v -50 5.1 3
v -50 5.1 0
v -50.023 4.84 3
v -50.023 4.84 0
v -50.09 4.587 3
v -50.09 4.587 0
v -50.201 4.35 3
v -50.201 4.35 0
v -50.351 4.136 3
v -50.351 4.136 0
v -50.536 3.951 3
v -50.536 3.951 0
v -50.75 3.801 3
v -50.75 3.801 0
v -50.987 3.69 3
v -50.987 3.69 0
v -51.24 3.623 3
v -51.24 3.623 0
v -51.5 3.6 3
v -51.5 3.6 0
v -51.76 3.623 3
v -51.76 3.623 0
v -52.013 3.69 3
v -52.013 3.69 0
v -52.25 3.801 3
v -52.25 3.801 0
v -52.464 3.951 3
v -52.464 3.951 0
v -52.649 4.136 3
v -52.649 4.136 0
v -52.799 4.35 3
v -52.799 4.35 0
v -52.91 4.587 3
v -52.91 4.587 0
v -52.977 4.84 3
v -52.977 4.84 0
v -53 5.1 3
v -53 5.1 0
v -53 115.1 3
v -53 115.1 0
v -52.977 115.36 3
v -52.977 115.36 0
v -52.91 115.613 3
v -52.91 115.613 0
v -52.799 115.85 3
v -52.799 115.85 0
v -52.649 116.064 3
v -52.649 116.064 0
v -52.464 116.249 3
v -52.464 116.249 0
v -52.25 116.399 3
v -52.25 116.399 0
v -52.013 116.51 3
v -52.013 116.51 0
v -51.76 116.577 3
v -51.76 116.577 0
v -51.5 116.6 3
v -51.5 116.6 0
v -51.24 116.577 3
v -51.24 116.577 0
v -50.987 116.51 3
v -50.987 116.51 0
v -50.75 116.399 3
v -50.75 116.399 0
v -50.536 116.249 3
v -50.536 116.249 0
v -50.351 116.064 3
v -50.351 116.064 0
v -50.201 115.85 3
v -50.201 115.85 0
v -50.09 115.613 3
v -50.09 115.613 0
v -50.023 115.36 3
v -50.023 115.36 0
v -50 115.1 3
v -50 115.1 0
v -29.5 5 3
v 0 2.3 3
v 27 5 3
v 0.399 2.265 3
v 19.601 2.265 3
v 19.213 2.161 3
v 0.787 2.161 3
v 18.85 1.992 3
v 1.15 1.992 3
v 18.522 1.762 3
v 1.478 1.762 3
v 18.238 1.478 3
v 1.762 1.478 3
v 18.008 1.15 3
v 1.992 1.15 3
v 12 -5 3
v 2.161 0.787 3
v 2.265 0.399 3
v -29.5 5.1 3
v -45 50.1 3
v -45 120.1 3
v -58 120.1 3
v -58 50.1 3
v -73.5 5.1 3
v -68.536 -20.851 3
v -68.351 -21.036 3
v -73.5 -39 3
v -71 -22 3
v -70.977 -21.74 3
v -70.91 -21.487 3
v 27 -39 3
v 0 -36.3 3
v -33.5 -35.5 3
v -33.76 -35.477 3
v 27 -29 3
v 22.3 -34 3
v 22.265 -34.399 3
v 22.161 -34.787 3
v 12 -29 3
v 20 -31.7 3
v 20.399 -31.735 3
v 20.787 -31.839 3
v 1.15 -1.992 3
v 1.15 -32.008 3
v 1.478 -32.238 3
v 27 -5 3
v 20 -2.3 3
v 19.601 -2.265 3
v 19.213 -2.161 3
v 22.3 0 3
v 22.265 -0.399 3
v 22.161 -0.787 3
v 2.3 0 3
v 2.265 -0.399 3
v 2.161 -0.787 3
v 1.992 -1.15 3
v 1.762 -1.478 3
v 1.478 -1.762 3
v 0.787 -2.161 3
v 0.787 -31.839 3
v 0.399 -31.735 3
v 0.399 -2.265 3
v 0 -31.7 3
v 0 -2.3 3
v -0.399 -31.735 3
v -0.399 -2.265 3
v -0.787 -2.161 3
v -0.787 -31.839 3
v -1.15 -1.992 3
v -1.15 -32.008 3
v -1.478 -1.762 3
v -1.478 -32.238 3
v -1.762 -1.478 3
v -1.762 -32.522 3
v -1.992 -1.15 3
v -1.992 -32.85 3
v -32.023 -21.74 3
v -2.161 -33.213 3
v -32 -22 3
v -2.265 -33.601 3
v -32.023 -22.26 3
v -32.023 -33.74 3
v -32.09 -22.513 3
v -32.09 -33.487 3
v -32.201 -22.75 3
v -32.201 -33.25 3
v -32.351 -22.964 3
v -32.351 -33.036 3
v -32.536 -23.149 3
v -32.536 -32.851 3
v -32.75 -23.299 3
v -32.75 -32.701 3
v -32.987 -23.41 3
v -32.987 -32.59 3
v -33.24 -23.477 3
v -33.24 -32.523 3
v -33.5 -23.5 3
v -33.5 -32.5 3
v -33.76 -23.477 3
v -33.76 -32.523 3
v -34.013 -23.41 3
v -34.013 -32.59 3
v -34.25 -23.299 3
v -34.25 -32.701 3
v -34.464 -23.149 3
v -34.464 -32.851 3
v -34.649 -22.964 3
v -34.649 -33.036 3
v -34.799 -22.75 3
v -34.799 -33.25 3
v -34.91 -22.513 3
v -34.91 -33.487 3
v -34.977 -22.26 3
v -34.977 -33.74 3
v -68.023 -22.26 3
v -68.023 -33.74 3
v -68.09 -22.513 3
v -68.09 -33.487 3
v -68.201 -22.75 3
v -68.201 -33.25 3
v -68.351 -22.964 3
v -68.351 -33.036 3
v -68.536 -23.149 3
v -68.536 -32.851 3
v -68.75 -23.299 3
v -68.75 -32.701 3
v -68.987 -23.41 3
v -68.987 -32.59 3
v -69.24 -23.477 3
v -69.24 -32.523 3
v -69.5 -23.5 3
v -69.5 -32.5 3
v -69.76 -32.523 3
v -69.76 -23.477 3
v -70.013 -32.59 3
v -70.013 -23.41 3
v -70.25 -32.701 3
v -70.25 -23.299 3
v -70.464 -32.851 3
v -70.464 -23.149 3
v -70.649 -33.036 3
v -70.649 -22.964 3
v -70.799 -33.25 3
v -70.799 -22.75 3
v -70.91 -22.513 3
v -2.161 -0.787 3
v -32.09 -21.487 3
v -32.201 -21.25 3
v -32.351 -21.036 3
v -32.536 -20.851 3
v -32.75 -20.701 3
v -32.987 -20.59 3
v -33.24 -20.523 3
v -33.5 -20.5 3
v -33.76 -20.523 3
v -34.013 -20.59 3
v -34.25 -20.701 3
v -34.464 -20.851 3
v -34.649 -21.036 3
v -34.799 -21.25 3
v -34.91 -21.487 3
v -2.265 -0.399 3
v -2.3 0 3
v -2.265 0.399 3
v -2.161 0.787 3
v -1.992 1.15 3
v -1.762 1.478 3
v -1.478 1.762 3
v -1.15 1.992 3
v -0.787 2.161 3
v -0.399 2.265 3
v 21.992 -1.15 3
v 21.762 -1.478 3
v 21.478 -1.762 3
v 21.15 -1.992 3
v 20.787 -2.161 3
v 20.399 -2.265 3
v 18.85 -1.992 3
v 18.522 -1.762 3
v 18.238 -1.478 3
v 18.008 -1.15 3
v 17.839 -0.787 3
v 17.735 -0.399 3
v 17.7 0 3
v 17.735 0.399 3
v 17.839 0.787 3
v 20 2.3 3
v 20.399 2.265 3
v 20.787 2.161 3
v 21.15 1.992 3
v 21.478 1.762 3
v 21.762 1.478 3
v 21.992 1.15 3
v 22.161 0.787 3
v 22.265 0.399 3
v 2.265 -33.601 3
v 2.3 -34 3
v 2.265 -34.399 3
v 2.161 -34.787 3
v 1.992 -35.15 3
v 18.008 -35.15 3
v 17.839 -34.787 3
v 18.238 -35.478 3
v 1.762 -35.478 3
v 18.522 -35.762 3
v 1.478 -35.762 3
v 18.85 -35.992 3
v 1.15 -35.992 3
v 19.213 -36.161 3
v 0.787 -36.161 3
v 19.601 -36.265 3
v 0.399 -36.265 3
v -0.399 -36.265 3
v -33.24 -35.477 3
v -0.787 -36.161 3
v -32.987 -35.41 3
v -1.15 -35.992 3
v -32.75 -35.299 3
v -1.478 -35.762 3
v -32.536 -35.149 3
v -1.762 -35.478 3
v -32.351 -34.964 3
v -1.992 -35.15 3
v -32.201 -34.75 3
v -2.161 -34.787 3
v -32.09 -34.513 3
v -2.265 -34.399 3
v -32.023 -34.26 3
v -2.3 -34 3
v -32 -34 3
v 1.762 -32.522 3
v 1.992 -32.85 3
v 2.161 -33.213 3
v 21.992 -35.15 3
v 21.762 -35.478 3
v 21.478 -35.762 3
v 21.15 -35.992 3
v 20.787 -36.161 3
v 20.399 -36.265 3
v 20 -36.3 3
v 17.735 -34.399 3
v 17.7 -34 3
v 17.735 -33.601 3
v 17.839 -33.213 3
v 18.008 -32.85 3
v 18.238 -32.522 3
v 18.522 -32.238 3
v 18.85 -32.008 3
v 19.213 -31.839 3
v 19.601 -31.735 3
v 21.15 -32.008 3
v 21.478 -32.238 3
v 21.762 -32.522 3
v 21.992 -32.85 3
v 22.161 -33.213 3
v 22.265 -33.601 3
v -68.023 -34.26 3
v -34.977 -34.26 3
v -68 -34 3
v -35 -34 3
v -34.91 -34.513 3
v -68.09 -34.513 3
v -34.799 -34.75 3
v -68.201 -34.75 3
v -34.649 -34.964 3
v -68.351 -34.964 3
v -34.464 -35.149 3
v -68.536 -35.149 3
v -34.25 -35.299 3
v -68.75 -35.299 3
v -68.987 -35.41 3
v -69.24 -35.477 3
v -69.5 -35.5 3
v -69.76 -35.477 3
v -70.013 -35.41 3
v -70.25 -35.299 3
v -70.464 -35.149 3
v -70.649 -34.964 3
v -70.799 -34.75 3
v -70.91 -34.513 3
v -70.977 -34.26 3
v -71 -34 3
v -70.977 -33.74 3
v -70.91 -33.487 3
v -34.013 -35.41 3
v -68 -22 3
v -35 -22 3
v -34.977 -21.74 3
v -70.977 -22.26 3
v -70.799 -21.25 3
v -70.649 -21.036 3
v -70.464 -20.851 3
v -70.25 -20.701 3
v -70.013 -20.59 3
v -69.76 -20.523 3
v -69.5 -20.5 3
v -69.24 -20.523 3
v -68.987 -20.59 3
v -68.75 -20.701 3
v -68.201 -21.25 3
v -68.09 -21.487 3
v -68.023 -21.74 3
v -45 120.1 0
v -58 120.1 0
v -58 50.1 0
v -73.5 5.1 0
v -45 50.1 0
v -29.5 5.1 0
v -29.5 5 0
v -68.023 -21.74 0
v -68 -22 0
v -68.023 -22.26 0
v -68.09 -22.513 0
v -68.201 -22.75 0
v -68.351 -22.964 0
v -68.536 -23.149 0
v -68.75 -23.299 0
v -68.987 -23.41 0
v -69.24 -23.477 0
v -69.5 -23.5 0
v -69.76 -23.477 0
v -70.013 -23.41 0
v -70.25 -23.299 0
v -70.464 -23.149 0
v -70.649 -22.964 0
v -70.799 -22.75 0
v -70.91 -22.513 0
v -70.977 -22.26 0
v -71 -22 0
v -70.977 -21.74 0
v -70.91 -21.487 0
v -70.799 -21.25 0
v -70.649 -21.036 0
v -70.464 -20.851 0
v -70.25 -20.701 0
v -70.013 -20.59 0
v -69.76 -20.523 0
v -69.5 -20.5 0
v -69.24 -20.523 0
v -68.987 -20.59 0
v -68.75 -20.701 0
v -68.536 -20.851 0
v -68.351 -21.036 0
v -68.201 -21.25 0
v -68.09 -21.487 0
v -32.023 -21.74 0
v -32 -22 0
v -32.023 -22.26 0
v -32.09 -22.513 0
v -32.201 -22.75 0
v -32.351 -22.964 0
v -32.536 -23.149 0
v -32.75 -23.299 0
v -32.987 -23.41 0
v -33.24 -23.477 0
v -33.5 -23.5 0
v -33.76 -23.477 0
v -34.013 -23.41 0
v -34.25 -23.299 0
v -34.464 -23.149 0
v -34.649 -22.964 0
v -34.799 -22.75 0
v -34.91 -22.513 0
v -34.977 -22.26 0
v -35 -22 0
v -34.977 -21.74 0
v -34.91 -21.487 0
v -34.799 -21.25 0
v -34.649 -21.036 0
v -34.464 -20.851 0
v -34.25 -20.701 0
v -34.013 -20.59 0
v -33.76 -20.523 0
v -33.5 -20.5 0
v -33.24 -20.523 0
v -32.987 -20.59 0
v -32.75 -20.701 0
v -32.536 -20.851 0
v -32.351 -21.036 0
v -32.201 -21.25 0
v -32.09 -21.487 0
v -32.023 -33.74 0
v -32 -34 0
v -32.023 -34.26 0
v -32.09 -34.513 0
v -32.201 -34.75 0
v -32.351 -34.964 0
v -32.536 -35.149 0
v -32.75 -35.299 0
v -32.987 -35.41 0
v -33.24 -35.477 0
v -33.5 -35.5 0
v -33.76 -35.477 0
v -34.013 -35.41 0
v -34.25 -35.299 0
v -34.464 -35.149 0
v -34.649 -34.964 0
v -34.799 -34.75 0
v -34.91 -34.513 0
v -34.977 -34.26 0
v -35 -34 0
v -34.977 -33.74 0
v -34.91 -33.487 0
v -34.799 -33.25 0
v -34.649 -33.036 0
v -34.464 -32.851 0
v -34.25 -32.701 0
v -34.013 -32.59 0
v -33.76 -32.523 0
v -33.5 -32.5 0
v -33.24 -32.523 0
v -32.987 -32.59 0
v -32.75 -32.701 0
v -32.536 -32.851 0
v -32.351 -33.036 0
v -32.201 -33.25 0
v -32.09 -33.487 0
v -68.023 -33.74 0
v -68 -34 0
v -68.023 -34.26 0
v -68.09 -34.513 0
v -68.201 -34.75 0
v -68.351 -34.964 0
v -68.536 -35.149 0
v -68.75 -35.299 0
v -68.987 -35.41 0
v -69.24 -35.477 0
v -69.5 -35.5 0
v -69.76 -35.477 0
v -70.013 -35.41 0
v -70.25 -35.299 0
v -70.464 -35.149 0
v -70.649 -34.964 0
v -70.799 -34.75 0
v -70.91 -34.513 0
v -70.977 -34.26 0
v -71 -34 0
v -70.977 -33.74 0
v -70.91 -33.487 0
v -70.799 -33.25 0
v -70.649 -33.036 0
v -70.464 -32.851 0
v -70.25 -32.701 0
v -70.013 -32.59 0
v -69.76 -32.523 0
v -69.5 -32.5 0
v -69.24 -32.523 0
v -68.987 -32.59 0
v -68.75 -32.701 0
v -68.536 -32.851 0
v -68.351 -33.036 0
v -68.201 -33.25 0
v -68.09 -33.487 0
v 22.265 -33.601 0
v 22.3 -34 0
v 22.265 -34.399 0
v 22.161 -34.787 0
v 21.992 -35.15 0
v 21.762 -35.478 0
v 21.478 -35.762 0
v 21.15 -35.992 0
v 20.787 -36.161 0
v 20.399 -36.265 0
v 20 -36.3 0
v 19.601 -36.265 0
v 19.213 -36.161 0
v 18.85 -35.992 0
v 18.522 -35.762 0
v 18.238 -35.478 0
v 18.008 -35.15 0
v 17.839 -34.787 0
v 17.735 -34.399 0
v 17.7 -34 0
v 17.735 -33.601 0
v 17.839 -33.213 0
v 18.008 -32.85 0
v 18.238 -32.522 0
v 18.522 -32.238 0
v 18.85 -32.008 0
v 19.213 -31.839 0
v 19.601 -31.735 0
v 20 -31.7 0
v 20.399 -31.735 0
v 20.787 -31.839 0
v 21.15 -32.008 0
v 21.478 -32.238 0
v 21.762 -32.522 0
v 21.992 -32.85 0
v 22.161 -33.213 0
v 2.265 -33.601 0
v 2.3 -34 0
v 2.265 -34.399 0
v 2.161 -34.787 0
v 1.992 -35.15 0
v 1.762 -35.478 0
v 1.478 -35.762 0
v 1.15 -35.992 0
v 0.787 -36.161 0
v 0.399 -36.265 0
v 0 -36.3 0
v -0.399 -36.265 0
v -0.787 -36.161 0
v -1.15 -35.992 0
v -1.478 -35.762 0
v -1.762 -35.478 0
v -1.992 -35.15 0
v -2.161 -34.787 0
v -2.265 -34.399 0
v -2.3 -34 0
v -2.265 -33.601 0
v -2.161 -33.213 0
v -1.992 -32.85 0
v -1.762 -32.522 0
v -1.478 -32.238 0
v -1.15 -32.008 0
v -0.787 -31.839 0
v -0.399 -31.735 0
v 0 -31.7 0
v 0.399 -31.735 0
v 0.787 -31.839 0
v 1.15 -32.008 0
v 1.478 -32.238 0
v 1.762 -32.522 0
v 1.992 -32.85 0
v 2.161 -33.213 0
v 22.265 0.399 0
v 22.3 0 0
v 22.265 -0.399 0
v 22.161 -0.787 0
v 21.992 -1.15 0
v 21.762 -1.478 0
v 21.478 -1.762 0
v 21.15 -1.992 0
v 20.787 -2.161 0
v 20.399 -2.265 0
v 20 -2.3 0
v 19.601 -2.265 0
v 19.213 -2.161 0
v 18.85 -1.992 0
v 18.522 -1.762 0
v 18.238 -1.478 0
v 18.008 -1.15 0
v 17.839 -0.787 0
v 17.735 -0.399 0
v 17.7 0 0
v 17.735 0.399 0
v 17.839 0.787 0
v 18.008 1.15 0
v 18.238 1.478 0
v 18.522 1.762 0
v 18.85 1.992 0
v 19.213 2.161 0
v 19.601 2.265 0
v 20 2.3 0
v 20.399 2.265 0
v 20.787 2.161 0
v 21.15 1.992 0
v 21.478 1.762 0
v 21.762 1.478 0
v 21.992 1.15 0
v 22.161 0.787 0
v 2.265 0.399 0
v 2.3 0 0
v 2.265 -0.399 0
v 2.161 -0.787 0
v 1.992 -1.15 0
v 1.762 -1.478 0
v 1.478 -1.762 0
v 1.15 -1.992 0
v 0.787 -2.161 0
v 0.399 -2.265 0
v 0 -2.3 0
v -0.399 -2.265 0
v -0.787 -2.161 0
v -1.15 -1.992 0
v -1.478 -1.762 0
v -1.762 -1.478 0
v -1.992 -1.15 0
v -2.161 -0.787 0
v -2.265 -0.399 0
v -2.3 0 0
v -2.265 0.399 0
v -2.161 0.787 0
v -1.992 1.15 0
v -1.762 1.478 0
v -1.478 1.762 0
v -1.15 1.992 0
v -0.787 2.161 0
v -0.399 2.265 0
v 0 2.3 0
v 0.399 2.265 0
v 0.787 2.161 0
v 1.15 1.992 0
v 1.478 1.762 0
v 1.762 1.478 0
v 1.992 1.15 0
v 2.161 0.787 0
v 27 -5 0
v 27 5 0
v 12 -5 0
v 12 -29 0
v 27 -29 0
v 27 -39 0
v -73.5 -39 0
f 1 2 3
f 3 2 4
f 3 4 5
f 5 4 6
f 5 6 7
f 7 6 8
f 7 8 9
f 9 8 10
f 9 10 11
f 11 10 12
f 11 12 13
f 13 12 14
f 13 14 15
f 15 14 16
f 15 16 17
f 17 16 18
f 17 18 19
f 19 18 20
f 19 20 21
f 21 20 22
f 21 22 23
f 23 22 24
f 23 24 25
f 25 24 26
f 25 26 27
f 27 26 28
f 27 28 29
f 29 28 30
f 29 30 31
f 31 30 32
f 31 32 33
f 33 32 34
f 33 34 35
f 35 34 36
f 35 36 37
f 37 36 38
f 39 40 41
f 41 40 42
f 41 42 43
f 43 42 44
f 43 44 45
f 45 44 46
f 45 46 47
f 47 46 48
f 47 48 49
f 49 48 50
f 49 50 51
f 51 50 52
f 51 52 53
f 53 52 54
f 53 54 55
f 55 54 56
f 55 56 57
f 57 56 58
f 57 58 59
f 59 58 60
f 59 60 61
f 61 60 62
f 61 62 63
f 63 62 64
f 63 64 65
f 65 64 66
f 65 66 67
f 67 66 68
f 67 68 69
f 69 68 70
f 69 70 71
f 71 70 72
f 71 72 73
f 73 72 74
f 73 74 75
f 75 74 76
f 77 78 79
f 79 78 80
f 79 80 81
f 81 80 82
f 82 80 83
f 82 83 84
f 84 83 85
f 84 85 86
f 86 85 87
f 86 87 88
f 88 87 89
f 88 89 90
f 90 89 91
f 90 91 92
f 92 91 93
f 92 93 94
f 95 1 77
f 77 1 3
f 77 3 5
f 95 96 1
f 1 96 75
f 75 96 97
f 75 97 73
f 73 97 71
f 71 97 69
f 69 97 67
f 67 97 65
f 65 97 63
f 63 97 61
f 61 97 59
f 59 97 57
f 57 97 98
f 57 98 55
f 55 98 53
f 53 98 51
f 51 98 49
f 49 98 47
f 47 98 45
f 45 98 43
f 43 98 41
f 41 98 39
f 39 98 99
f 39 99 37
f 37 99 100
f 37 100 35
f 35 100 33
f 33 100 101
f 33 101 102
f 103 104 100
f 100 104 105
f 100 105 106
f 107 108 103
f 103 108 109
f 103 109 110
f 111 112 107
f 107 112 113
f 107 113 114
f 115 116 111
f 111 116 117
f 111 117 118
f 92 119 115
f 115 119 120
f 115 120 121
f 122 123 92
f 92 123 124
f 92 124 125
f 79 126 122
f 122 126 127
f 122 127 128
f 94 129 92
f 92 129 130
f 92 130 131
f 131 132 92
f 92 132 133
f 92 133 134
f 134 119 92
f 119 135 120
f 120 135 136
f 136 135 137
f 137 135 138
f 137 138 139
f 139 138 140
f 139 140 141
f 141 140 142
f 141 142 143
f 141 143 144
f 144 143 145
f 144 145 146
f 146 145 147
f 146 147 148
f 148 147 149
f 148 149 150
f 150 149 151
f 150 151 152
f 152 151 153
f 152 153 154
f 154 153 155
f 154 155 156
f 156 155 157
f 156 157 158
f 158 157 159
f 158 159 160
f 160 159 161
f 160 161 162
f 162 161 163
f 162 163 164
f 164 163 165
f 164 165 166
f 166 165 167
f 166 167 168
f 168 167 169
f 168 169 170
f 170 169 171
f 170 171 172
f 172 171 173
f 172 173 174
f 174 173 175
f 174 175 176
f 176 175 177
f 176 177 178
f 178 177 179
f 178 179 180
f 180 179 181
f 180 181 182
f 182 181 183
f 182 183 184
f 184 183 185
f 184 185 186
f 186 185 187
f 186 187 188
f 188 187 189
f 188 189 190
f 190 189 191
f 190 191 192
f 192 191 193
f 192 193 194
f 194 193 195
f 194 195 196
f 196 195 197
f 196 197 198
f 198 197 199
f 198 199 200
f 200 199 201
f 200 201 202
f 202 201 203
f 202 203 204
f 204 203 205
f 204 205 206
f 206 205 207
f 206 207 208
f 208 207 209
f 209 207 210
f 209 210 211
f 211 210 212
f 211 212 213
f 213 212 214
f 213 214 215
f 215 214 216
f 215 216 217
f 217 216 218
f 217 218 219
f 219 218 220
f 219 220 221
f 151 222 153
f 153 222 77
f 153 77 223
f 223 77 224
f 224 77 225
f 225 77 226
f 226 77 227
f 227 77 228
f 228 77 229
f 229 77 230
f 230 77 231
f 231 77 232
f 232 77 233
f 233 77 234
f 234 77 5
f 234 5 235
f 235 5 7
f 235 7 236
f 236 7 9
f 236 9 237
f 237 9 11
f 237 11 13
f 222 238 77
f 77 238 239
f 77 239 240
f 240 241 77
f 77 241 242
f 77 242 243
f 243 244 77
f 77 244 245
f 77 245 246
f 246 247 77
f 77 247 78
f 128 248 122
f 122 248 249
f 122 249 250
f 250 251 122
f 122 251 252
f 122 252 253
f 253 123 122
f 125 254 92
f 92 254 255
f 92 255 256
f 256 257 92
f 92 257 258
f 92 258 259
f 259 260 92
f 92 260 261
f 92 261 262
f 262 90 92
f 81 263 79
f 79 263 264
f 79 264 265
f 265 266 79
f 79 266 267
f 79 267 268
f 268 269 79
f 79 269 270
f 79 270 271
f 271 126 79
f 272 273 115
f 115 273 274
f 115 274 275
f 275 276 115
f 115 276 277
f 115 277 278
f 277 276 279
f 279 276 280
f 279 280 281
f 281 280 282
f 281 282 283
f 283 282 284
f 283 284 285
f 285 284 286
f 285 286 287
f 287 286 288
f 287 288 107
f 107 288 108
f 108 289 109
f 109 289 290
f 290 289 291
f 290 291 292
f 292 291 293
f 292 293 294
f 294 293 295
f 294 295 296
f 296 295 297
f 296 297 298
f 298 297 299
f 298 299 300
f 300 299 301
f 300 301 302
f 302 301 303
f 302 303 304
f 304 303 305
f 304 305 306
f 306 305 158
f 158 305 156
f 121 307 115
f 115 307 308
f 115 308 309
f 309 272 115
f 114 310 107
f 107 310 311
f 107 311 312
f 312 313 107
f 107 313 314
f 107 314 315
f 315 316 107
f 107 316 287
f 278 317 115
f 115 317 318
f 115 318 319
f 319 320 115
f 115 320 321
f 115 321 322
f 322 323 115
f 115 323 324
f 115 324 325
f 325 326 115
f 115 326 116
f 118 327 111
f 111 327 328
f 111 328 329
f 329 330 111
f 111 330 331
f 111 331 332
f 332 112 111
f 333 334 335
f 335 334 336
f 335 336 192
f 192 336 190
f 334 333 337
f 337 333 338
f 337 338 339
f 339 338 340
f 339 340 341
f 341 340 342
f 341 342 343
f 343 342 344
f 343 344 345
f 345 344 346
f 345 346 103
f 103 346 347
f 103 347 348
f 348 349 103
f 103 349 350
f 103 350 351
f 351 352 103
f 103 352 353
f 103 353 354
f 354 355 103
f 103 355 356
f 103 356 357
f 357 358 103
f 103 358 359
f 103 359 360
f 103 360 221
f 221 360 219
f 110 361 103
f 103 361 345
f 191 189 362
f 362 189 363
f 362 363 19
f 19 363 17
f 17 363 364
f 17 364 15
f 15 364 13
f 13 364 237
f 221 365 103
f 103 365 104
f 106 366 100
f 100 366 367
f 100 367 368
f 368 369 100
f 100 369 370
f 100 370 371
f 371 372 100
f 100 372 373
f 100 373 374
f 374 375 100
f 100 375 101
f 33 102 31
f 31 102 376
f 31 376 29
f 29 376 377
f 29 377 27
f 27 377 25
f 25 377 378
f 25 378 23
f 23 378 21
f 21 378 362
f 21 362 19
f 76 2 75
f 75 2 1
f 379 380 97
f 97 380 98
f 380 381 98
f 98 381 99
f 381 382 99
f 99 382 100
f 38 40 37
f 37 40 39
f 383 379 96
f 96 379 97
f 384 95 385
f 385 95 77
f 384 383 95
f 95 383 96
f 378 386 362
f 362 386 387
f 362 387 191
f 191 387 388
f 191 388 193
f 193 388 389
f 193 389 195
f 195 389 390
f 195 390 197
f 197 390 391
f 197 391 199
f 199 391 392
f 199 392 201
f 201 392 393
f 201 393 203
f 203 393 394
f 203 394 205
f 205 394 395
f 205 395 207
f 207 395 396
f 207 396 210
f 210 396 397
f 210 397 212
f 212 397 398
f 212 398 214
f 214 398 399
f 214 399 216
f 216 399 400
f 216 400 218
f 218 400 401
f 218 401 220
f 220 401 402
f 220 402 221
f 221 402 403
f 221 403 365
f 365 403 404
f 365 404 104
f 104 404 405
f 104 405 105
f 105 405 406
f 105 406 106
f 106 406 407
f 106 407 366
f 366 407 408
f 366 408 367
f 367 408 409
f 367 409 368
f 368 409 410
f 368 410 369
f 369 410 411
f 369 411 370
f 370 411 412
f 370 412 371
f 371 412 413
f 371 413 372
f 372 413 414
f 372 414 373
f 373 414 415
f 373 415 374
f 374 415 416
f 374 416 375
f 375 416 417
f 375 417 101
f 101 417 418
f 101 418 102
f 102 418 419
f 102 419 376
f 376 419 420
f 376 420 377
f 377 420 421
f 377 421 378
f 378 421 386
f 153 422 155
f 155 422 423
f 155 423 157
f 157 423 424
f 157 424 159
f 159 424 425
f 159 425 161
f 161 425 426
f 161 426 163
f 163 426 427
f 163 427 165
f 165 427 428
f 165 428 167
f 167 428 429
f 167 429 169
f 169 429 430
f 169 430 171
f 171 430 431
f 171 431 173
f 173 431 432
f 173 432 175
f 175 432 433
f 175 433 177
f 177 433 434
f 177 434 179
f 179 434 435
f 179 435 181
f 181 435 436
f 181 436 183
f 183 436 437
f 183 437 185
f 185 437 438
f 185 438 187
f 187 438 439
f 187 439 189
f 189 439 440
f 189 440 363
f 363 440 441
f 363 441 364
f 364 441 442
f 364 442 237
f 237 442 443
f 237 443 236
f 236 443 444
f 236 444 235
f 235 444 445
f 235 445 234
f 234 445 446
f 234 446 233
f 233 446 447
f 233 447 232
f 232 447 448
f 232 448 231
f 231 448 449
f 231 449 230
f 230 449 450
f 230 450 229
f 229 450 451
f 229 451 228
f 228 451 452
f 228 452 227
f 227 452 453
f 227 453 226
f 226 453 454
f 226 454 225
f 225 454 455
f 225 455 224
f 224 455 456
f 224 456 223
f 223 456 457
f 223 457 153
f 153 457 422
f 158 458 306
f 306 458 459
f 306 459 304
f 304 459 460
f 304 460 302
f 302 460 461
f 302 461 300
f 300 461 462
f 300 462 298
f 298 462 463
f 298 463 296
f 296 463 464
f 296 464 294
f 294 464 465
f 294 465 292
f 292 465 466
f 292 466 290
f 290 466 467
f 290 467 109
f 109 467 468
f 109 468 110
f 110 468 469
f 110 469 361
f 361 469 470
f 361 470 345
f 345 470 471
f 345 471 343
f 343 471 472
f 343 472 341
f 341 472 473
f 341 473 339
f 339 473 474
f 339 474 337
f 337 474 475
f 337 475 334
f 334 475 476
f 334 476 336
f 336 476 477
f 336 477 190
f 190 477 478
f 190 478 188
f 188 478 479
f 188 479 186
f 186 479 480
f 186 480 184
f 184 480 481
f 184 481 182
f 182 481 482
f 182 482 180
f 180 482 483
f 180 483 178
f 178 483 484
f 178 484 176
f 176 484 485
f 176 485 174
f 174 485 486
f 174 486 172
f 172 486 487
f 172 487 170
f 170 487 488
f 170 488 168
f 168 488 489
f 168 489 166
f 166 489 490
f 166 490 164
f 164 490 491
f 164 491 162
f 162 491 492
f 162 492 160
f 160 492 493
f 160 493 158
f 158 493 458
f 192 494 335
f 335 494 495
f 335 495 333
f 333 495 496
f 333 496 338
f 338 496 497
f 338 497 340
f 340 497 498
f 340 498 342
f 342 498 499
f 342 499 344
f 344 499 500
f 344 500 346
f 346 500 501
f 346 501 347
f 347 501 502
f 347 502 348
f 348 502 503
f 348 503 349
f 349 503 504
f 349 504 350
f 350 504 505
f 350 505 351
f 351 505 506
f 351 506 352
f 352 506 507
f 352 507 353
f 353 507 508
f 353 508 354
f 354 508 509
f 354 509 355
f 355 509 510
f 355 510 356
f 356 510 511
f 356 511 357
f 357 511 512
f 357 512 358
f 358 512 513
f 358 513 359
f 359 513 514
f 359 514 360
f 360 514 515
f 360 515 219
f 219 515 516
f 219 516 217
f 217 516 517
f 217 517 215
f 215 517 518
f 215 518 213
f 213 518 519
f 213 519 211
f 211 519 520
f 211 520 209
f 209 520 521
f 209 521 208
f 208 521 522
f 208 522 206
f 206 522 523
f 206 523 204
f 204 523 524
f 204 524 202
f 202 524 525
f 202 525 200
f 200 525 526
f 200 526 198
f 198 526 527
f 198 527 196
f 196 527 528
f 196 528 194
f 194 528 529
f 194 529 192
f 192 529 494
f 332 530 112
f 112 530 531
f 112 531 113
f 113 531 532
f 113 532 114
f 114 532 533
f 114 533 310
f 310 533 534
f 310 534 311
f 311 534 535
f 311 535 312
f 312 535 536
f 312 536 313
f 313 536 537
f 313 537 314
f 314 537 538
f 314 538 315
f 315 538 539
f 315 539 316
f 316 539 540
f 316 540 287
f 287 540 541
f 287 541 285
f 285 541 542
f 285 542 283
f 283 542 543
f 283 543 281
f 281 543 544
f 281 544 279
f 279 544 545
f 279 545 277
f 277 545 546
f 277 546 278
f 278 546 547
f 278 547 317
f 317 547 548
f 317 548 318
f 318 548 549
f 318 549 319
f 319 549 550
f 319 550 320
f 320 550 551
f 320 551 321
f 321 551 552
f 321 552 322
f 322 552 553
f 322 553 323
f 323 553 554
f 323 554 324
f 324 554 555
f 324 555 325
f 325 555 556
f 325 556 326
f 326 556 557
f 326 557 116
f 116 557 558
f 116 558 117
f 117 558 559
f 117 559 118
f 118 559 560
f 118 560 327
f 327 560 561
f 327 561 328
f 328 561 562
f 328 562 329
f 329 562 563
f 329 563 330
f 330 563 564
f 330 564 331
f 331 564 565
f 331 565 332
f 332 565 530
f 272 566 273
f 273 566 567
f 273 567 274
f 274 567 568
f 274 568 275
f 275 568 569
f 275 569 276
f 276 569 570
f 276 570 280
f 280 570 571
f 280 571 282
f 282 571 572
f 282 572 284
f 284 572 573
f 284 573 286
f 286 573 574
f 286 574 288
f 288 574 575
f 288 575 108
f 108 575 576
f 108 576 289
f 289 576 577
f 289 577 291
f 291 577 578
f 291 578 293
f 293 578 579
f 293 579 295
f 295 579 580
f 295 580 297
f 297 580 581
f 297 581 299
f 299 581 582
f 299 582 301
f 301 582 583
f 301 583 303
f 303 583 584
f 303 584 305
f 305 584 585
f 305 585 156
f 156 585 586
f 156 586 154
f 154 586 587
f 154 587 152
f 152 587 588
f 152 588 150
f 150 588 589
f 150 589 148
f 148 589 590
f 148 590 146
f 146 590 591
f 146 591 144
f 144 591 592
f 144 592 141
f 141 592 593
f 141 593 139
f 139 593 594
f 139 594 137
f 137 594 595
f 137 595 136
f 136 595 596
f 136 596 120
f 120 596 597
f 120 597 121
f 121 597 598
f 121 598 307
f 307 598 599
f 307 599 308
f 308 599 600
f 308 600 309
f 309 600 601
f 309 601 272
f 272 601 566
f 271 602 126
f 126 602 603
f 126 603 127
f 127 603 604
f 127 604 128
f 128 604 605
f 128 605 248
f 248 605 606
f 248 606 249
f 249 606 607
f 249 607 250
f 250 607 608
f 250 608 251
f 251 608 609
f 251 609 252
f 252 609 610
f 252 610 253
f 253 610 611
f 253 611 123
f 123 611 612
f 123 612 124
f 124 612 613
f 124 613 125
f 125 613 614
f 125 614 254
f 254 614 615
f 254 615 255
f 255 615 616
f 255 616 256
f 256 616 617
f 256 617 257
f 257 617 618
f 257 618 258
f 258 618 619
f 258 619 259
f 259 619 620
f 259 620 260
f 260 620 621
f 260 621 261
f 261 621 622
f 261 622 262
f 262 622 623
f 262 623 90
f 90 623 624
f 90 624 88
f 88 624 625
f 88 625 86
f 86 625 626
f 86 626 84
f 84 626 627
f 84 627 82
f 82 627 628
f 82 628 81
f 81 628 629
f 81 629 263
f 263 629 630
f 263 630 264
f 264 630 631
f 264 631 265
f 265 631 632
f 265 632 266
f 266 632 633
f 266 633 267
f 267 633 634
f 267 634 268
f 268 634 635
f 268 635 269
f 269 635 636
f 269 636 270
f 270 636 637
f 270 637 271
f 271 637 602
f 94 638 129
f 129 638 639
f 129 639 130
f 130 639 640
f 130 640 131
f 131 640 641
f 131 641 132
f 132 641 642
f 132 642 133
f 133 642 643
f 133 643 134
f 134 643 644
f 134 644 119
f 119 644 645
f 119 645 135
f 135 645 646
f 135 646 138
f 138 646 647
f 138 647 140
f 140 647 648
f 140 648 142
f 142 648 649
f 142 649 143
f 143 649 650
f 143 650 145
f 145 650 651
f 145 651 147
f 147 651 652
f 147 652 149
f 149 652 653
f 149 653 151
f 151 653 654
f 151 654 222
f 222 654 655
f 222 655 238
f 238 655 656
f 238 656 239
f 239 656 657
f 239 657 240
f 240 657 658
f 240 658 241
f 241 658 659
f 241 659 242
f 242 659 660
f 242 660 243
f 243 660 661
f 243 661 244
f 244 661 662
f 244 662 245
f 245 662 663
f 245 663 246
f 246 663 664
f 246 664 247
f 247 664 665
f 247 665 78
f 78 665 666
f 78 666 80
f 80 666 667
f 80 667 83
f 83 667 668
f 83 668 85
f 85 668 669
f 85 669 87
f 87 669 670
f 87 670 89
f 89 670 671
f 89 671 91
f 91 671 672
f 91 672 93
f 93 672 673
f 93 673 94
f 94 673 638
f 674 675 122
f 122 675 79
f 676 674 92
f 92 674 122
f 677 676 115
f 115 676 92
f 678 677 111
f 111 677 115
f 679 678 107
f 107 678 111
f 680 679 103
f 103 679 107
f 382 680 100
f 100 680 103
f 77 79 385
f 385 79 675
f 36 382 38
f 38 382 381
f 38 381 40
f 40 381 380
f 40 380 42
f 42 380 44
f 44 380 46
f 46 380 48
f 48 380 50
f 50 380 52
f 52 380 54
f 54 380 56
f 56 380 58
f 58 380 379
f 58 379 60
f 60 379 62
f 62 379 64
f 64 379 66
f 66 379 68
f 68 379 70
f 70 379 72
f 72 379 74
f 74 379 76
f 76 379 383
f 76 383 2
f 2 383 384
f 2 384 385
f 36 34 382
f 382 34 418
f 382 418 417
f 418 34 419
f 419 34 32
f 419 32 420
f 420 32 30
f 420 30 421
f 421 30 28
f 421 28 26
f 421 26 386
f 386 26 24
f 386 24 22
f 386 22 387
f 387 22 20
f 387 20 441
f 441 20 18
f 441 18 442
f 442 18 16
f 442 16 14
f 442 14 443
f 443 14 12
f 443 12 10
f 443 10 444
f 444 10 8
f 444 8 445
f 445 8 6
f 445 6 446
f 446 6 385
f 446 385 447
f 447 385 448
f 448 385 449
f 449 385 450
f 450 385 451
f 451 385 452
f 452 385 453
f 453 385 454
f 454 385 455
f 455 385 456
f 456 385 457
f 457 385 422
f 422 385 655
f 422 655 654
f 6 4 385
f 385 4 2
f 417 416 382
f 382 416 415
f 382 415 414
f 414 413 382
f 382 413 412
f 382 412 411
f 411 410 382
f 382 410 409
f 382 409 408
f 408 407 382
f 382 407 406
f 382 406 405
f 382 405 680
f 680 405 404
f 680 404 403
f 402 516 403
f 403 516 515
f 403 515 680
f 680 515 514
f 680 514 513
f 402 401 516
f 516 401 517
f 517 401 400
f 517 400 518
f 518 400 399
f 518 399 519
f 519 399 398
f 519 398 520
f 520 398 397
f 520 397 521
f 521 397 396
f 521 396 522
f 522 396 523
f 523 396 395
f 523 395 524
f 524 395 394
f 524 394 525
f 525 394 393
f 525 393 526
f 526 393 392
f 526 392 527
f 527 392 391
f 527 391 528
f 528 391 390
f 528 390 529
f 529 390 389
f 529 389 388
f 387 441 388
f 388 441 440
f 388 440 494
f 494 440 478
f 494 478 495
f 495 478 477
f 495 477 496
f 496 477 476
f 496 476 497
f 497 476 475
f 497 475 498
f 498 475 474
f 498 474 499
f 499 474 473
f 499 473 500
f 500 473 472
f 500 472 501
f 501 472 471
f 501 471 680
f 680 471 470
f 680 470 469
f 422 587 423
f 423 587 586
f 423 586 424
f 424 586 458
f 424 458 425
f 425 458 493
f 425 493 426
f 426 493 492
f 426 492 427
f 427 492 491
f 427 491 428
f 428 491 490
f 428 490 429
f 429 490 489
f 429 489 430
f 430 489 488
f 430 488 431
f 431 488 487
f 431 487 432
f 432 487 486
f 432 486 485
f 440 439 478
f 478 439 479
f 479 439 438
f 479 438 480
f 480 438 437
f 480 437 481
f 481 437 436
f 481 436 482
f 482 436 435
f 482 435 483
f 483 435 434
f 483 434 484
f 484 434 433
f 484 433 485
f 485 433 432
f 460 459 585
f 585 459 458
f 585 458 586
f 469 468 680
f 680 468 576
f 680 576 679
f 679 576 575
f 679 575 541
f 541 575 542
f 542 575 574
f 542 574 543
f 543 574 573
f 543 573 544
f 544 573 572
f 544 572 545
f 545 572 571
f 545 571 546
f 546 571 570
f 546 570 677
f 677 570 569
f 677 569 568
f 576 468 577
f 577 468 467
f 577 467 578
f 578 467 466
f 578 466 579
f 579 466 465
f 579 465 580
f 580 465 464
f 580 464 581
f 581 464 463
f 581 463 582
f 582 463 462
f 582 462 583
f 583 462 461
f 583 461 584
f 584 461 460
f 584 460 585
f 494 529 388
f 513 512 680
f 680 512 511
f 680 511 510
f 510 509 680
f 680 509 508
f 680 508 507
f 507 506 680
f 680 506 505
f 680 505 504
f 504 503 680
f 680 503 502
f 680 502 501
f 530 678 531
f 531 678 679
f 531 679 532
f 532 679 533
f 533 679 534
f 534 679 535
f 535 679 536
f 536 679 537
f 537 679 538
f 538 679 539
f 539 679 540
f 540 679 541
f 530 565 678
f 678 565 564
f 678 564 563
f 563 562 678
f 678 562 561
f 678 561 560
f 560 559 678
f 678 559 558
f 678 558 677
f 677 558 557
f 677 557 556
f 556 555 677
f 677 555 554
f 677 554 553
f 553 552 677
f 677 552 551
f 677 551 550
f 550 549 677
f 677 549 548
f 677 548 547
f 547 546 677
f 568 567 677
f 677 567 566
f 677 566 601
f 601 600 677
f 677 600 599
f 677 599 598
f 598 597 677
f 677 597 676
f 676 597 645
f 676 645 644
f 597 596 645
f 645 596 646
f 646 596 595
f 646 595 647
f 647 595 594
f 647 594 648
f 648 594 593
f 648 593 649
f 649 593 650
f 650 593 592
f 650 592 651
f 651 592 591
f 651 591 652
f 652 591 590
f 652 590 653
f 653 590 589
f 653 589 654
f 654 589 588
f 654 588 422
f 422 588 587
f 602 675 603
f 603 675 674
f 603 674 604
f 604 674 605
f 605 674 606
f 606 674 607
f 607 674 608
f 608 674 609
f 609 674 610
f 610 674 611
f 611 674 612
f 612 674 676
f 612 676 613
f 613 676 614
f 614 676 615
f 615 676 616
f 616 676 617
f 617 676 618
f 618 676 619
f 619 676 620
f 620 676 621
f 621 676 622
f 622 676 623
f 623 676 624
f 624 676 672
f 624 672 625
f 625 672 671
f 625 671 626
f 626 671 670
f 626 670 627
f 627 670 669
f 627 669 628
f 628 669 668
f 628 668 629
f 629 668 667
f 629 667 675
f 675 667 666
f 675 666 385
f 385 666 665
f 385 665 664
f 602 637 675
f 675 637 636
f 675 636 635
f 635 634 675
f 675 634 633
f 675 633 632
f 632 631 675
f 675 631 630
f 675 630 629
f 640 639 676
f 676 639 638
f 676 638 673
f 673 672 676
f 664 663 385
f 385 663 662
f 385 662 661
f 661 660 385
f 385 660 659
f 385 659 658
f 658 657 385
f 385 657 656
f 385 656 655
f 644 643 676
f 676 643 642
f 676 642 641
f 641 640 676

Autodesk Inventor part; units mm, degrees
ref_plane "YZ Plane" through (0, 0, 0) normal (1, 0, 0) x (0, 1, 0)
ref_plane "XZ Plane" through (0, 0, 0) normal (0, 1, 0) x (-1, 0, 0)
ref_plane "XY Plane" through (0, 0, 0) normal (0, 0, 1) x (1, 0, 0)
sketch "Skizze1" plane through (0, 0, 0) normal (0, 0, 1) x (1, 0, 0)
  circle A0 centre (0, 0) radius 2.3
  line L0 (-73.5, 5) -> (27, 5)
  line L1 (27, -39) -> (-73.5, -39)
  line L2 (-73.5, -39) -> (-73.5, 5)
  circle A1 centre (20, 0) radius 2.3
  circle A2 centre (0, -34) radius 2.3
  circle A3 centre (20, -34) radius 2.3
  line L3 (27, -29) -> (12, -29)
  line L4 (12, -29) -> (12, -5)
  line L5 (12, -5) -> (27, -5)
  line L6 (27, 5) -> (27, -5)
  line L7 (27, -29) -> (27, -39)
  dimension "d0" = 4.6
  dimension "d3" = 20
  dimension "d6" = 34
  dimension "d9" = 10
  dimension "d11" = 5
  dimension "d12" = 5
  dimension "d13" = 5
  dimension "d15" = 15
  dimension "d16" = 7
  dimension "d17" = 100.5
extrude "Extrusion1" add sketch "Skizze1" along normal blind 3
sketch "Skizze2" plane through (0, 0, 3) normal (0, 0, 1) x (1, 0, 0)
  circle A0 centre (-69.5, -34) radius 1.5
  circle A1 centre (20, -34) radius 2.3 projected
  circle A2 centre (0, -34) radius 2.3 projected
  circle A3 centre (20, 0) radius 2.3 projected
  circle A4 centre (0, 0) radius 2.3 projected
  line L0 (27, 5) -> (-73.5, 5) projected
  line L1 (-73.5, 5) -> (-73.5, -39) projected
  line L2 (-73.5, -39) -> (27, -39) projected
  line L3 (27, -39) -> (27, -29) projected
  line L4 (27, -29) -> (12, -29) projected
  line L5 (12, -29) -> (12, -5) projected
  line L6 (12, -5) -> (27, -5) projected
  line L7 (27, -5) -> (27, 5) projected
  circle A5 centre (-33.5, -34) radius 1.5
  circle A6 centre (-69.5, -22) radius 1.5
  circle A7 centre (-33.5, -22) radius 1.5
  dimension "d20" = 3
  dimension "d21" = 5
  dimension "d22" = 4
  dimension "d25" = 36
  dimension "d28" = 12
extrude "Extrusion2" cut sketch "Skizze2" against normal up to surface (3 mm away) contours A0 | A5 | A6 | A7
sketch "Skizze3" plane through (0, 0, 3) normal (0, 0, 1) x (1, 0, 0)
  circle A0 centre (-69.5, -22) radius 1.5 projected
  circle A1 centre (-33.5, -22) radius 1.5 projected
  circle A2 centre (-33.5, -34) radius 1.5 projected
  circle A3 centre (-69.5, -34) radius 1.5 projected
  circle A4 centre (20, -34) radius 2.3 projected
  circle A5 centre (0, -34) radius 2.3 projected
  circle A6 centre (20, 0) radius 2.3 projected
  circle A7 centre (0, 0) radius 2.3 projected
  line L0 (27, 5) -> (-73.5, 5) projected
  line L1 (-73.5, 5) -> (-73.5, -39) projected
  line L2 (-73.5, -39) -> (27, -39) projected
  line L3 (27, -39) -> (27, -29) projected
  line L4 (27, -29) -> (12, -29) projected
  line L5 (12, -29) -> (12, -5) projected
  line L6 (12, -5) -> (27, -5) projected
  line L7 (27, -5) -> (27, 5) projected
  line L8 (-73.5, 5) -> (-29.5, 5)
  line L9 (-29.5, 5) -> (-29.5, 5.1)
  line L10 (-29.5, 5.1) -> (-73.5, 5.1)
  line L11 (-73.5, 5.1) -> (-73.5, 5)
  line L12 (-53, 5.1) -> (-50, 5.1)
  line L13 (-50, 5.1) -> (-50, 115.1)
  line L14 (-50, 115.1) -> (-53, 115.1)
  line L15 (-53, 115.1) -> (-53, 5.1)
  line L16 (-58, 5.1) -> (-45, 5.1)
  line L17 (-45, 5.1) -> (-45, 120.1)
  line L18 (-45, 120.1) -> (-58, 120.1)
  line L19 (-58, 120.1) -> (-58, 5.1)
  line L20 (-73.5, 5.1) -> (-58, 50.1)
  line L21 (-29.5, 5.1) -> (-45, 50.1)
  dimension "d33" = 44
  dimension "d34" = 0.1
  dimension "d35" = 3
  dimension "d36" = 110
  dimension "d37" = 5
  dimension "d38" = 5
  dimension "d39" = 5
  dimension "d40" = 15.5
  dimension "d41" = 45
  dimension "d42" = 45
  dimension "d46" = 15.5
  dimension "d47" = 16.5
  dimension "d48" = 16.5
extrude "Extrusion3" add sketch "Skizze3" against normal up to surface (3 mm away) contours L0 L11 L10 L9 | L10 L17 L21 | L20 L19 L10 | L10 L13 L14 L15 L19 L18 L17
sketch "Skizze4" plane through (0, 0, 3) normal (0, 0, 1) x (1, 0, 0)
  line L0 (-53, 5.1) -> (-53, 115.1) projected
  line L1 (-53, 115.1) -> (-50, 115.1) projected
  line L2 (-50, 115.1) -> (-50, 5.1) projected
  line L3 (-50, 5.1) -> (-53, 5.1) projected
  circle A0 centre (-69.5, -22) radius 1.5 projected
  circle A1 centre (-33.5, -22) radius 1.5 projected
  circle A2 centre (-33.5, -34) radius 1.5 projected
  circle A3 centre (-69.5, -34) radius 1.5 projected
  circle A4 centre (20, -34) radius 2.3 projected
  circle A5 centre (0, -34) radius 2.3 projected
  circle A6 centre (20, 0) radius 2.3 projected
  circle A7 centre (0, 0) radius 2.3 projected
  line L4 (27, 5) -> (-29.5, 5) projected
  line L5 (-29.5, 5) -> (-29.5, 5.1) projected
  line L6 (-29.5, 5.1) -> (-45, 50.1) projected
  line L7 (-45, 50.1) -> (-45, 120.1) projected
  line L8 (-45, 120.1) -> (-58, 120.1) projected
  line L9 (-58, 120.1) -> (-58, 50.1) projected
  line L10 (-58, 50.1) -> (-73.5, 5.1) projected
  line L11 (-73.5, 5.1) -> (-73.5, -39) projected
  line L12 (-73.5, -39) -> (27, -39) projected
  line L13 (27, -39) -> (27, -29) projected
  line L14 (27, -29) -> (12, -29) projected
  line L15 (12, -29) -> (12, -5) projected
  line L16 (12, -5) -> (27, -5) projected
  line L17 (27, -5) -> (27, 5) projected
  arc A8 (-50, 115.1) -> (-53, 115.1) centre (-51.5, 115.1) ccw
  line L18 (-50, 5.1) -> (-53, 5.1) projected
  arc A9 (-53, 5.1) -> (-50, 5.1) centre (-51.5, 5.1) ccw
extrude "Extrusion4" cut sketch "Skizze4" against normal up to surface (3 mm away) contours L3 A9 | A8 L1
sketch "Skizze6" plane through (0, 0, 3) normal (0, 0, 1) x (1, 0, 0)
  line L0 (27, 5) -> (-29.5, 5) projected
  line L1 (-29.5, 5) -> (-29.5, 5.1) projected
  line L2 (-29.5, 5.1) -> (-45, 50.1) projected
  line L3 (-45, 50.1) -> (-45, 120.1) projected
  line L4 (-45, 120.1) -> (-58, 120.1) projected
  line L5 (-58, 120.1) -> (-58, 50.1) projected
  line L6 (-58, 50.1) -> (-73.5, 5.1) projected
  line L7 (-73.5, 5.1) -> (-73.5, -39) projected
  line L8 (-73.5, -39) -> (27, -39) projected
  line L9 (27, -39) -> (27, -29) projected
  line L10 (27, -29) -> (12, -29) projected
  line L11 (12, -29) -> (12, -5) projected
  line L12 (12, -5) -> (27, -5) projected
  line L13 (27, -5) -> (27, 5) projected
  circle A0 centre (0, 0) radius 2.3 projected
  circle A1 centre (20, 0) radius 2.3 projected
  circle A2 centre (0, -34) radius 2.3 projected
  circle A3 centre (20, -34) radius 2.3 projected
  circle A4 centre (-69.5, -34) radius 1.5 projected
  circle A5 centre (-33.5, -34) radius 1.5 projected
  circle A6 centre (-33.5, -22) radius 1.5 projected
  circle A7 centre (-69.5, -22) radius 1.5 projected
  arc A8 (-53, 5.1) -> (-50, 5.1) centre (-51.5, 5.1) ccw projected
  line L14 (-53, 5.1) -> (-53, 115.1) projected
  arc A9 (-50, 115.1) -> (-53, 115.1) centre (-51.5, 115.1) ccw projected
  line L15 (-50, 115.1) -> (-50, 5.1) projected
properties part number "Upper_plate"
